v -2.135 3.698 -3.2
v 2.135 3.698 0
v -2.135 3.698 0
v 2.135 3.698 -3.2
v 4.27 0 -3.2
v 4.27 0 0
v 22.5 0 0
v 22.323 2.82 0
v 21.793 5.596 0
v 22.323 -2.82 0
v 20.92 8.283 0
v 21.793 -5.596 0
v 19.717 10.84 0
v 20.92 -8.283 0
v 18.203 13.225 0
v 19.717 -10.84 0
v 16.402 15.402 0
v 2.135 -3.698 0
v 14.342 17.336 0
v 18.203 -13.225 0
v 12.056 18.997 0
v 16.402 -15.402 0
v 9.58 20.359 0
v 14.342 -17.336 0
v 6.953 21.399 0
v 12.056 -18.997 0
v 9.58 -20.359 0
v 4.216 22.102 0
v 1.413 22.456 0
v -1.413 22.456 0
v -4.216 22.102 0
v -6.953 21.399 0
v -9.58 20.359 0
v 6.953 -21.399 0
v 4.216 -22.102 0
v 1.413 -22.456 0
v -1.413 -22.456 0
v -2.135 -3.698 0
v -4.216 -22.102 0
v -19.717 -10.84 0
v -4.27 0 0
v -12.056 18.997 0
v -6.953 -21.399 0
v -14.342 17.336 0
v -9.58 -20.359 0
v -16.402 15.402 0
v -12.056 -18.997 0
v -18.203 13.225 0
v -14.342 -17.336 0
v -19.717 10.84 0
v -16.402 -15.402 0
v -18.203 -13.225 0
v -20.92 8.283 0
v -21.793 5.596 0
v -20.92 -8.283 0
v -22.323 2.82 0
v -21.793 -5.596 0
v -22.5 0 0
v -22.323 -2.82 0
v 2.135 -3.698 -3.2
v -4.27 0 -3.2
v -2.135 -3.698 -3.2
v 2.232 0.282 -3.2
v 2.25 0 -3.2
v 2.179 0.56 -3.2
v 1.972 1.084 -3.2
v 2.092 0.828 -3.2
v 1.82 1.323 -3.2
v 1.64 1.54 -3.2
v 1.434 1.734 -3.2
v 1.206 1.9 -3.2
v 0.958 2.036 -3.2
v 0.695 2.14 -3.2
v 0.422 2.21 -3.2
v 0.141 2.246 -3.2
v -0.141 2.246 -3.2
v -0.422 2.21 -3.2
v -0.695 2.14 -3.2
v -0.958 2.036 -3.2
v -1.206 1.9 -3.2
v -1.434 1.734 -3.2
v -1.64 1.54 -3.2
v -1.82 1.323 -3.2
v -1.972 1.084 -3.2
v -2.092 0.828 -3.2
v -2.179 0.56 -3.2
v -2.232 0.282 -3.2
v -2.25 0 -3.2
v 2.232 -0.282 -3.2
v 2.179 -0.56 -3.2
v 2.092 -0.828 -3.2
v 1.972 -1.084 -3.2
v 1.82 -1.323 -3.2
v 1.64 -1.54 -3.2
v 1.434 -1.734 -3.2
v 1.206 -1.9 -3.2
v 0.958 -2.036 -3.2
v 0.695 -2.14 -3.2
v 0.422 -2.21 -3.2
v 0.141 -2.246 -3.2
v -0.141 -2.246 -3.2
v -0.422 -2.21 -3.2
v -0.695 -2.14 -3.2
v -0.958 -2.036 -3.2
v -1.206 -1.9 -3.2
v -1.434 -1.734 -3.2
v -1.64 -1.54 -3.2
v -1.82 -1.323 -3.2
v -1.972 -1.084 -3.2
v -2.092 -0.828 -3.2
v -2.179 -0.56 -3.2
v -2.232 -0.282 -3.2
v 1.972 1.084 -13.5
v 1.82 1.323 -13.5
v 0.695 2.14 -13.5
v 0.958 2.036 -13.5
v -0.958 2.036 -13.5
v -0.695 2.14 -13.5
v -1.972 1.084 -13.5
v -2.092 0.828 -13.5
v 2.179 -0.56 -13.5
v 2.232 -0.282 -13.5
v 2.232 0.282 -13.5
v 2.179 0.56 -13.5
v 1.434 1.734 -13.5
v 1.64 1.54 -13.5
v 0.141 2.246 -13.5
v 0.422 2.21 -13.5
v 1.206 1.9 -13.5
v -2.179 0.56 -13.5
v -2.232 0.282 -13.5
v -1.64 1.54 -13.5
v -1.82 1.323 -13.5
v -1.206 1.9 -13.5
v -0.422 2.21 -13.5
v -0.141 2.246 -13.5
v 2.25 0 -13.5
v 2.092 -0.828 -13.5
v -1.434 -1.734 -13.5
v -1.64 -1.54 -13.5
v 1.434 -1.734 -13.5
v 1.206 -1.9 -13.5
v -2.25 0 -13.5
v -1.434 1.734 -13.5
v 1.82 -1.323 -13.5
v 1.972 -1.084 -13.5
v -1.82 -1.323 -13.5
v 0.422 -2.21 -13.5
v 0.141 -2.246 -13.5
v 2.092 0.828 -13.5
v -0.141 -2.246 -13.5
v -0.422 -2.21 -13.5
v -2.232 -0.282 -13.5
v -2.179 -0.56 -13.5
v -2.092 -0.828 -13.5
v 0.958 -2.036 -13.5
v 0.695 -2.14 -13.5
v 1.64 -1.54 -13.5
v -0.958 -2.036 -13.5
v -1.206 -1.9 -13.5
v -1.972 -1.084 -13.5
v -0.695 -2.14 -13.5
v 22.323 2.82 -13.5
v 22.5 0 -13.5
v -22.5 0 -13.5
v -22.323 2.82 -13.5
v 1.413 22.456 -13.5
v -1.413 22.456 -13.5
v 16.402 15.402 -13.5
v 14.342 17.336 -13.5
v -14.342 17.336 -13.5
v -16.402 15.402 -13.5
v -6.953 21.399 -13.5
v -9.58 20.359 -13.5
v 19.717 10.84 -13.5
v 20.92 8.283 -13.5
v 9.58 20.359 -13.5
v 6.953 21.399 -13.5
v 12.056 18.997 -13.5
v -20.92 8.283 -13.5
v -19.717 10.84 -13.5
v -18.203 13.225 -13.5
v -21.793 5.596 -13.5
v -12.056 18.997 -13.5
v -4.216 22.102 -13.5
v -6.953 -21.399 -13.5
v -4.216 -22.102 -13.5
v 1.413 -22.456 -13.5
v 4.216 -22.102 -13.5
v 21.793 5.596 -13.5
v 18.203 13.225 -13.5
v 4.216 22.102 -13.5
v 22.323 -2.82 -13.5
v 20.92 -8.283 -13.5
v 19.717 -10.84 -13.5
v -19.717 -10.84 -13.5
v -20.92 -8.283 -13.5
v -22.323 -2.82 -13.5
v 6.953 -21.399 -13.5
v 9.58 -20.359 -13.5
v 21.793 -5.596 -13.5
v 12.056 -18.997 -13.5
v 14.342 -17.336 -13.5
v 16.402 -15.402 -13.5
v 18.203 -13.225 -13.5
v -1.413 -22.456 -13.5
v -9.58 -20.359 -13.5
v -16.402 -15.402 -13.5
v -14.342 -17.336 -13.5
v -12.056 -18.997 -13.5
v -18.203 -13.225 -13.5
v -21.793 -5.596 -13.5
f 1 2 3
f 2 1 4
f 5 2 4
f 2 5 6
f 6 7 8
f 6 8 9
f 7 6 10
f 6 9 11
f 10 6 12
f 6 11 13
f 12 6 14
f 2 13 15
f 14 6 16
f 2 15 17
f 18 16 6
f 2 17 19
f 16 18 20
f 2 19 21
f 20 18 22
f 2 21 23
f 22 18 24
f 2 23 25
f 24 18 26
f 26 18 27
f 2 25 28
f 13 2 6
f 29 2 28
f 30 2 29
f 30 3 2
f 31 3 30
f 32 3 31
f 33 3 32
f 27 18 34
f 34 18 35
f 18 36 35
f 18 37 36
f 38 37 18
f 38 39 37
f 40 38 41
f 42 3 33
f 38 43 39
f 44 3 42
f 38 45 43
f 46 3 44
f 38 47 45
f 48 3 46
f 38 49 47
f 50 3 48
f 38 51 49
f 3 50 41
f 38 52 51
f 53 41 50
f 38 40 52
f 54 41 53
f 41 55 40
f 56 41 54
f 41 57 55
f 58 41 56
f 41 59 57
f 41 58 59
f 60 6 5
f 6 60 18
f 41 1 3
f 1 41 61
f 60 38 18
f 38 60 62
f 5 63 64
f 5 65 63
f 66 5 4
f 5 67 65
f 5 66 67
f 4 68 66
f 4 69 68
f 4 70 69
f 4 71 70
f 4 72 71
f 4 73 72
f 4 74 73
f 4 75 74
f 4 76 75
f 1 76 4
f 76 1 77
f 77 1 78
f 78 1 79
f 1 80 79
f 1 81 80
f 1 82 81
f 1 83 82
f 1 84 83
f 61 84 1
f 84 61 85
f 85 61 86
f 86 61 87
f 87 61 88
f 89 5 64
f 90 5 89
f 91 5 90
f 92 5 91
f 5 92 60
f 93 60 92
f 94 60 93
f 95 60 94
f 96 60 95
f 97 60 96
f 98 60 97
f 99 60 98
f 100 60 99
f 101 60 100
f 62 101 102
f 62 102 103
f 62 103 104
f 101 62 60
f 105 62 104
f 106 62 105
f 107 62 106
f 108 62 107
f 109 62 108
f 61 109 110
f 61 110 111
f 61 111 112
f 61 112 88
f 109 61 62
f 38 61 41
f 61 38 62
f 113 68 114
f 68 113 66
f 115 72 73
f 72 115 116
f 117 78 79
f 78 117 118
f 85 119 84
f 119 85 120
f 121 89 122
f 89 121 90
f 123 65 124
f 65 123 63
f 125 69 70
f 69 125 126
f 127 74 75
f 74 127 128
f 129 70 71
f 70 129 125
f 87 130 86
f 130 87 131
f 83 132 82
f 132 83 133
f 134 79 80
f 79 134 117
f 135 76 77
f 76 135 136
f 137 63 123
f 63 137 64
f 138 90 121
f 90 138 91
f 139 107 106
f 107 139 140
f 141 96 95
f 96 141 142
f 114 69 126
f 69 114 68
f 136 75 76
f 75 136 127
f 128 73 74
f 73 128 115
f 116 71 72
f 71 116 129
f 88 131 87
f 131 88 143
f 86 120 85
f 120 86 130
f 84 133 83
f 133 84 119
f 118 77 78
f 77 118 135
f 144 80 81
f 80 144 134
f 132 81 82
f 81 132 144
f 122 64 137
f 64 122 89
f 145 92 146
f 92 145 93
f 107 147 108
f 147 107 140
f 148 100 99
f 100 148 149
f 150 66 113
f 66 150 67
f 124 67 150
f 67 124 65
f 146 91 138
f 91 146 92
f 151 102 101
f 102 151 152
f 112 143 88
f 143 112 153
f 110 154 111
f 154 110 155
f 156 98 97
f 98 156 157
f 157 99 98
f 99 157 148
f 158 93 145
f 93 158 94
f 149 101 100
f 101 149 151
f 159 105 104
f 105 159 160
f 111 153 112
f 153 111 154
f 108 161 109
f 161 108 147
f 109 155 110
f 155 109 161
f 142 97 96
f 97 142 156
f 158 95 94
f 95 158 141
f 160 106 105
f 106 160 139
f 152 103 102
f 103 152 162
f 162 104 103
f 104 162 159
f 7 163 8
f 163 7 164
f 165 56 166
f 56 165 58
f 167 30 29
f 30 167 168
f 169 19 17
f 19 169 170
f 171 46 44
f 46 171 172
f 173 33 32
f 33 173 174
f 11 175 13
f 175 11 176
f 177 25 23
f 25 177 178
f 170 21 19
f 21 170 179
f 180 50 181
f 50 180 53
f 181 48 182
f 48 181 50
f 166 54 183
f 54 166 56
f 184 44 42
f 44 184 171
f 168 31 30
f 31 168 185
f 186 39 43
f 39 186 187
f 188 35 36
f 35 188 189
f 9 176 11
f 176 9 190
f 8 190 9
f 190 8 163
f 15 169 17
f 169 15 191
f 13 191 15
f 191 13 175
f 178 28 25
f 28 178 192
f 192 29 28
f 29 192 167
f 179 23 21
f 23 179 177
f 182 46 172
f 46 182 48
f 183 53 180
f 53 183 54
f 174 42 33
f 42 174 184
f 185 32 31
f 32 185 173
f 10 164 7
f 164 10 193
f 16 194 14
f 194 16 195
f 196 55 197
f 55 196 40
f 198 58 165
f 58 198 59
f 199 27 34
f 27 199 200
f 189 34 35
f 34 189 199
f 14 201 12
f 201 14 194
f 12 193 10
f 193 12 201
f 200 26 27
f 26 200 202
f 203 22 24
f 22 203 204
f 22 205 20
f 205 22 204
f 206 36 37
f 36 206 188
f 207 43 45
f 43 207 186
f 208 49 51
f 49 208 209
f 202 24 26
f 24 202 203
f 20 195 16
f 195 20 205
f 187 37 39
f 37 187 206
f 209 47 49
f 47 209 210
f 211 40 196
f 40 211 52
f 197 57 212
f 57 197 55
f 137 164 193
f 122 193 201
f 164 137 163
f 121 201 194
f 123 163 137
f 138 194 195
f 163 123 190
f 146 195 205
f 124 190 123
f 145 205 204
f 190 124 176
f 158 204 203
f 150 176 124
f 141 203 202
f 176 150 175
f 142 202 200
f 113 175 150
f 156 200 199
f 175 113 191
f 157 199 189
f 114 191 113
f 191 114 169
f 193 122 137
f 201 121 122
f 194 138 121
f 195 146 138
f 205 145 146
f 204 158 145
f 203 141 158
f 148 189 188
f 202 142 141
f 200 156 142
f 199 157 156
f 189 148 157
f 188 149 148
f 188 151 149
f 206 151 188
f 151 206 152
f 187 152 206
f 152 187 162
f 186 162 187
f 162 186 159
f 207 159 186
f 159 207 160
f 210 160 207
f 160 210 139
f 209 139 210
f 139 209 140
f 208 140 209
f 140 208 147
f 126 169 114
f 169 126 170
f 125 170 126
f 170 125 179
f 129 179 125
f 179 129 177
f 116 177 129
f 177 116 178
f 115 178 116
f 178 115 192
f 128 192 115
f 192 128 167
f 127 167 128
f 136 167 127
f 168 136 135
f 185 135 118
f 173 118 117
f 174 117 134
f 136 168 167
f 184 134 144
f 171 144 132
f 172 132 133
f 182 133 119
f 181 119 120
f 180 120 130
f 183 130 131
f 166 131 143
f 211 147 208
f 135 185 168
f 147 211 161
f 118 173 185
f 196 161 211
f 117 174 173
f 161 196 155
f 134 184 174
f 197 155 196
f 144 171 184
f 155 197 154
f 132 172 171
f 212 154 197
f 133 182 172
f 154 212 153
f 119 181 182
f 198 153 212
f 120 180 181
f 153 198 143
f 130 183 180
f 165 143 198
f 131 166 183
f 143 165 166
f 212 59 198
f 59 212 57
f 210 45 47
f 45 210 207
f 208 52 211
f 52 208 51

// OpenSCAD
$fn = 50;


difference() {
	union() {
		translate(v = [0, 0, -13.5000000000]) {
			cylinder(h = 13.5000000000, r = 22.5000000000);
		}
	}
	union() {
		translate(v = [0, 0, 0]) {
			rotate(a = [0, 0, 0]) {
				difference() {
					union() {
						translate(v = [0, 0, -3.2000000000]) {
							linear_extrude(height = 3.2000000000) {
								polygon(points = [[4.2698000000, 0.0000000000], [2.1349000000, 3.6977552691], [-2.1349000000, 3.6977552691], [-4.2698000000, 0.0000000000], [-2.1349000000, -3.6977552691], [2.1349000000, -3.6977552691]]);
							}
						}
					}
					union();
				}
			}
		}
		#translate(v = [0, 0, -100.0000000000]) {
			cylinder(h = 200, r = 2.2500000000);
		}
	}
}
